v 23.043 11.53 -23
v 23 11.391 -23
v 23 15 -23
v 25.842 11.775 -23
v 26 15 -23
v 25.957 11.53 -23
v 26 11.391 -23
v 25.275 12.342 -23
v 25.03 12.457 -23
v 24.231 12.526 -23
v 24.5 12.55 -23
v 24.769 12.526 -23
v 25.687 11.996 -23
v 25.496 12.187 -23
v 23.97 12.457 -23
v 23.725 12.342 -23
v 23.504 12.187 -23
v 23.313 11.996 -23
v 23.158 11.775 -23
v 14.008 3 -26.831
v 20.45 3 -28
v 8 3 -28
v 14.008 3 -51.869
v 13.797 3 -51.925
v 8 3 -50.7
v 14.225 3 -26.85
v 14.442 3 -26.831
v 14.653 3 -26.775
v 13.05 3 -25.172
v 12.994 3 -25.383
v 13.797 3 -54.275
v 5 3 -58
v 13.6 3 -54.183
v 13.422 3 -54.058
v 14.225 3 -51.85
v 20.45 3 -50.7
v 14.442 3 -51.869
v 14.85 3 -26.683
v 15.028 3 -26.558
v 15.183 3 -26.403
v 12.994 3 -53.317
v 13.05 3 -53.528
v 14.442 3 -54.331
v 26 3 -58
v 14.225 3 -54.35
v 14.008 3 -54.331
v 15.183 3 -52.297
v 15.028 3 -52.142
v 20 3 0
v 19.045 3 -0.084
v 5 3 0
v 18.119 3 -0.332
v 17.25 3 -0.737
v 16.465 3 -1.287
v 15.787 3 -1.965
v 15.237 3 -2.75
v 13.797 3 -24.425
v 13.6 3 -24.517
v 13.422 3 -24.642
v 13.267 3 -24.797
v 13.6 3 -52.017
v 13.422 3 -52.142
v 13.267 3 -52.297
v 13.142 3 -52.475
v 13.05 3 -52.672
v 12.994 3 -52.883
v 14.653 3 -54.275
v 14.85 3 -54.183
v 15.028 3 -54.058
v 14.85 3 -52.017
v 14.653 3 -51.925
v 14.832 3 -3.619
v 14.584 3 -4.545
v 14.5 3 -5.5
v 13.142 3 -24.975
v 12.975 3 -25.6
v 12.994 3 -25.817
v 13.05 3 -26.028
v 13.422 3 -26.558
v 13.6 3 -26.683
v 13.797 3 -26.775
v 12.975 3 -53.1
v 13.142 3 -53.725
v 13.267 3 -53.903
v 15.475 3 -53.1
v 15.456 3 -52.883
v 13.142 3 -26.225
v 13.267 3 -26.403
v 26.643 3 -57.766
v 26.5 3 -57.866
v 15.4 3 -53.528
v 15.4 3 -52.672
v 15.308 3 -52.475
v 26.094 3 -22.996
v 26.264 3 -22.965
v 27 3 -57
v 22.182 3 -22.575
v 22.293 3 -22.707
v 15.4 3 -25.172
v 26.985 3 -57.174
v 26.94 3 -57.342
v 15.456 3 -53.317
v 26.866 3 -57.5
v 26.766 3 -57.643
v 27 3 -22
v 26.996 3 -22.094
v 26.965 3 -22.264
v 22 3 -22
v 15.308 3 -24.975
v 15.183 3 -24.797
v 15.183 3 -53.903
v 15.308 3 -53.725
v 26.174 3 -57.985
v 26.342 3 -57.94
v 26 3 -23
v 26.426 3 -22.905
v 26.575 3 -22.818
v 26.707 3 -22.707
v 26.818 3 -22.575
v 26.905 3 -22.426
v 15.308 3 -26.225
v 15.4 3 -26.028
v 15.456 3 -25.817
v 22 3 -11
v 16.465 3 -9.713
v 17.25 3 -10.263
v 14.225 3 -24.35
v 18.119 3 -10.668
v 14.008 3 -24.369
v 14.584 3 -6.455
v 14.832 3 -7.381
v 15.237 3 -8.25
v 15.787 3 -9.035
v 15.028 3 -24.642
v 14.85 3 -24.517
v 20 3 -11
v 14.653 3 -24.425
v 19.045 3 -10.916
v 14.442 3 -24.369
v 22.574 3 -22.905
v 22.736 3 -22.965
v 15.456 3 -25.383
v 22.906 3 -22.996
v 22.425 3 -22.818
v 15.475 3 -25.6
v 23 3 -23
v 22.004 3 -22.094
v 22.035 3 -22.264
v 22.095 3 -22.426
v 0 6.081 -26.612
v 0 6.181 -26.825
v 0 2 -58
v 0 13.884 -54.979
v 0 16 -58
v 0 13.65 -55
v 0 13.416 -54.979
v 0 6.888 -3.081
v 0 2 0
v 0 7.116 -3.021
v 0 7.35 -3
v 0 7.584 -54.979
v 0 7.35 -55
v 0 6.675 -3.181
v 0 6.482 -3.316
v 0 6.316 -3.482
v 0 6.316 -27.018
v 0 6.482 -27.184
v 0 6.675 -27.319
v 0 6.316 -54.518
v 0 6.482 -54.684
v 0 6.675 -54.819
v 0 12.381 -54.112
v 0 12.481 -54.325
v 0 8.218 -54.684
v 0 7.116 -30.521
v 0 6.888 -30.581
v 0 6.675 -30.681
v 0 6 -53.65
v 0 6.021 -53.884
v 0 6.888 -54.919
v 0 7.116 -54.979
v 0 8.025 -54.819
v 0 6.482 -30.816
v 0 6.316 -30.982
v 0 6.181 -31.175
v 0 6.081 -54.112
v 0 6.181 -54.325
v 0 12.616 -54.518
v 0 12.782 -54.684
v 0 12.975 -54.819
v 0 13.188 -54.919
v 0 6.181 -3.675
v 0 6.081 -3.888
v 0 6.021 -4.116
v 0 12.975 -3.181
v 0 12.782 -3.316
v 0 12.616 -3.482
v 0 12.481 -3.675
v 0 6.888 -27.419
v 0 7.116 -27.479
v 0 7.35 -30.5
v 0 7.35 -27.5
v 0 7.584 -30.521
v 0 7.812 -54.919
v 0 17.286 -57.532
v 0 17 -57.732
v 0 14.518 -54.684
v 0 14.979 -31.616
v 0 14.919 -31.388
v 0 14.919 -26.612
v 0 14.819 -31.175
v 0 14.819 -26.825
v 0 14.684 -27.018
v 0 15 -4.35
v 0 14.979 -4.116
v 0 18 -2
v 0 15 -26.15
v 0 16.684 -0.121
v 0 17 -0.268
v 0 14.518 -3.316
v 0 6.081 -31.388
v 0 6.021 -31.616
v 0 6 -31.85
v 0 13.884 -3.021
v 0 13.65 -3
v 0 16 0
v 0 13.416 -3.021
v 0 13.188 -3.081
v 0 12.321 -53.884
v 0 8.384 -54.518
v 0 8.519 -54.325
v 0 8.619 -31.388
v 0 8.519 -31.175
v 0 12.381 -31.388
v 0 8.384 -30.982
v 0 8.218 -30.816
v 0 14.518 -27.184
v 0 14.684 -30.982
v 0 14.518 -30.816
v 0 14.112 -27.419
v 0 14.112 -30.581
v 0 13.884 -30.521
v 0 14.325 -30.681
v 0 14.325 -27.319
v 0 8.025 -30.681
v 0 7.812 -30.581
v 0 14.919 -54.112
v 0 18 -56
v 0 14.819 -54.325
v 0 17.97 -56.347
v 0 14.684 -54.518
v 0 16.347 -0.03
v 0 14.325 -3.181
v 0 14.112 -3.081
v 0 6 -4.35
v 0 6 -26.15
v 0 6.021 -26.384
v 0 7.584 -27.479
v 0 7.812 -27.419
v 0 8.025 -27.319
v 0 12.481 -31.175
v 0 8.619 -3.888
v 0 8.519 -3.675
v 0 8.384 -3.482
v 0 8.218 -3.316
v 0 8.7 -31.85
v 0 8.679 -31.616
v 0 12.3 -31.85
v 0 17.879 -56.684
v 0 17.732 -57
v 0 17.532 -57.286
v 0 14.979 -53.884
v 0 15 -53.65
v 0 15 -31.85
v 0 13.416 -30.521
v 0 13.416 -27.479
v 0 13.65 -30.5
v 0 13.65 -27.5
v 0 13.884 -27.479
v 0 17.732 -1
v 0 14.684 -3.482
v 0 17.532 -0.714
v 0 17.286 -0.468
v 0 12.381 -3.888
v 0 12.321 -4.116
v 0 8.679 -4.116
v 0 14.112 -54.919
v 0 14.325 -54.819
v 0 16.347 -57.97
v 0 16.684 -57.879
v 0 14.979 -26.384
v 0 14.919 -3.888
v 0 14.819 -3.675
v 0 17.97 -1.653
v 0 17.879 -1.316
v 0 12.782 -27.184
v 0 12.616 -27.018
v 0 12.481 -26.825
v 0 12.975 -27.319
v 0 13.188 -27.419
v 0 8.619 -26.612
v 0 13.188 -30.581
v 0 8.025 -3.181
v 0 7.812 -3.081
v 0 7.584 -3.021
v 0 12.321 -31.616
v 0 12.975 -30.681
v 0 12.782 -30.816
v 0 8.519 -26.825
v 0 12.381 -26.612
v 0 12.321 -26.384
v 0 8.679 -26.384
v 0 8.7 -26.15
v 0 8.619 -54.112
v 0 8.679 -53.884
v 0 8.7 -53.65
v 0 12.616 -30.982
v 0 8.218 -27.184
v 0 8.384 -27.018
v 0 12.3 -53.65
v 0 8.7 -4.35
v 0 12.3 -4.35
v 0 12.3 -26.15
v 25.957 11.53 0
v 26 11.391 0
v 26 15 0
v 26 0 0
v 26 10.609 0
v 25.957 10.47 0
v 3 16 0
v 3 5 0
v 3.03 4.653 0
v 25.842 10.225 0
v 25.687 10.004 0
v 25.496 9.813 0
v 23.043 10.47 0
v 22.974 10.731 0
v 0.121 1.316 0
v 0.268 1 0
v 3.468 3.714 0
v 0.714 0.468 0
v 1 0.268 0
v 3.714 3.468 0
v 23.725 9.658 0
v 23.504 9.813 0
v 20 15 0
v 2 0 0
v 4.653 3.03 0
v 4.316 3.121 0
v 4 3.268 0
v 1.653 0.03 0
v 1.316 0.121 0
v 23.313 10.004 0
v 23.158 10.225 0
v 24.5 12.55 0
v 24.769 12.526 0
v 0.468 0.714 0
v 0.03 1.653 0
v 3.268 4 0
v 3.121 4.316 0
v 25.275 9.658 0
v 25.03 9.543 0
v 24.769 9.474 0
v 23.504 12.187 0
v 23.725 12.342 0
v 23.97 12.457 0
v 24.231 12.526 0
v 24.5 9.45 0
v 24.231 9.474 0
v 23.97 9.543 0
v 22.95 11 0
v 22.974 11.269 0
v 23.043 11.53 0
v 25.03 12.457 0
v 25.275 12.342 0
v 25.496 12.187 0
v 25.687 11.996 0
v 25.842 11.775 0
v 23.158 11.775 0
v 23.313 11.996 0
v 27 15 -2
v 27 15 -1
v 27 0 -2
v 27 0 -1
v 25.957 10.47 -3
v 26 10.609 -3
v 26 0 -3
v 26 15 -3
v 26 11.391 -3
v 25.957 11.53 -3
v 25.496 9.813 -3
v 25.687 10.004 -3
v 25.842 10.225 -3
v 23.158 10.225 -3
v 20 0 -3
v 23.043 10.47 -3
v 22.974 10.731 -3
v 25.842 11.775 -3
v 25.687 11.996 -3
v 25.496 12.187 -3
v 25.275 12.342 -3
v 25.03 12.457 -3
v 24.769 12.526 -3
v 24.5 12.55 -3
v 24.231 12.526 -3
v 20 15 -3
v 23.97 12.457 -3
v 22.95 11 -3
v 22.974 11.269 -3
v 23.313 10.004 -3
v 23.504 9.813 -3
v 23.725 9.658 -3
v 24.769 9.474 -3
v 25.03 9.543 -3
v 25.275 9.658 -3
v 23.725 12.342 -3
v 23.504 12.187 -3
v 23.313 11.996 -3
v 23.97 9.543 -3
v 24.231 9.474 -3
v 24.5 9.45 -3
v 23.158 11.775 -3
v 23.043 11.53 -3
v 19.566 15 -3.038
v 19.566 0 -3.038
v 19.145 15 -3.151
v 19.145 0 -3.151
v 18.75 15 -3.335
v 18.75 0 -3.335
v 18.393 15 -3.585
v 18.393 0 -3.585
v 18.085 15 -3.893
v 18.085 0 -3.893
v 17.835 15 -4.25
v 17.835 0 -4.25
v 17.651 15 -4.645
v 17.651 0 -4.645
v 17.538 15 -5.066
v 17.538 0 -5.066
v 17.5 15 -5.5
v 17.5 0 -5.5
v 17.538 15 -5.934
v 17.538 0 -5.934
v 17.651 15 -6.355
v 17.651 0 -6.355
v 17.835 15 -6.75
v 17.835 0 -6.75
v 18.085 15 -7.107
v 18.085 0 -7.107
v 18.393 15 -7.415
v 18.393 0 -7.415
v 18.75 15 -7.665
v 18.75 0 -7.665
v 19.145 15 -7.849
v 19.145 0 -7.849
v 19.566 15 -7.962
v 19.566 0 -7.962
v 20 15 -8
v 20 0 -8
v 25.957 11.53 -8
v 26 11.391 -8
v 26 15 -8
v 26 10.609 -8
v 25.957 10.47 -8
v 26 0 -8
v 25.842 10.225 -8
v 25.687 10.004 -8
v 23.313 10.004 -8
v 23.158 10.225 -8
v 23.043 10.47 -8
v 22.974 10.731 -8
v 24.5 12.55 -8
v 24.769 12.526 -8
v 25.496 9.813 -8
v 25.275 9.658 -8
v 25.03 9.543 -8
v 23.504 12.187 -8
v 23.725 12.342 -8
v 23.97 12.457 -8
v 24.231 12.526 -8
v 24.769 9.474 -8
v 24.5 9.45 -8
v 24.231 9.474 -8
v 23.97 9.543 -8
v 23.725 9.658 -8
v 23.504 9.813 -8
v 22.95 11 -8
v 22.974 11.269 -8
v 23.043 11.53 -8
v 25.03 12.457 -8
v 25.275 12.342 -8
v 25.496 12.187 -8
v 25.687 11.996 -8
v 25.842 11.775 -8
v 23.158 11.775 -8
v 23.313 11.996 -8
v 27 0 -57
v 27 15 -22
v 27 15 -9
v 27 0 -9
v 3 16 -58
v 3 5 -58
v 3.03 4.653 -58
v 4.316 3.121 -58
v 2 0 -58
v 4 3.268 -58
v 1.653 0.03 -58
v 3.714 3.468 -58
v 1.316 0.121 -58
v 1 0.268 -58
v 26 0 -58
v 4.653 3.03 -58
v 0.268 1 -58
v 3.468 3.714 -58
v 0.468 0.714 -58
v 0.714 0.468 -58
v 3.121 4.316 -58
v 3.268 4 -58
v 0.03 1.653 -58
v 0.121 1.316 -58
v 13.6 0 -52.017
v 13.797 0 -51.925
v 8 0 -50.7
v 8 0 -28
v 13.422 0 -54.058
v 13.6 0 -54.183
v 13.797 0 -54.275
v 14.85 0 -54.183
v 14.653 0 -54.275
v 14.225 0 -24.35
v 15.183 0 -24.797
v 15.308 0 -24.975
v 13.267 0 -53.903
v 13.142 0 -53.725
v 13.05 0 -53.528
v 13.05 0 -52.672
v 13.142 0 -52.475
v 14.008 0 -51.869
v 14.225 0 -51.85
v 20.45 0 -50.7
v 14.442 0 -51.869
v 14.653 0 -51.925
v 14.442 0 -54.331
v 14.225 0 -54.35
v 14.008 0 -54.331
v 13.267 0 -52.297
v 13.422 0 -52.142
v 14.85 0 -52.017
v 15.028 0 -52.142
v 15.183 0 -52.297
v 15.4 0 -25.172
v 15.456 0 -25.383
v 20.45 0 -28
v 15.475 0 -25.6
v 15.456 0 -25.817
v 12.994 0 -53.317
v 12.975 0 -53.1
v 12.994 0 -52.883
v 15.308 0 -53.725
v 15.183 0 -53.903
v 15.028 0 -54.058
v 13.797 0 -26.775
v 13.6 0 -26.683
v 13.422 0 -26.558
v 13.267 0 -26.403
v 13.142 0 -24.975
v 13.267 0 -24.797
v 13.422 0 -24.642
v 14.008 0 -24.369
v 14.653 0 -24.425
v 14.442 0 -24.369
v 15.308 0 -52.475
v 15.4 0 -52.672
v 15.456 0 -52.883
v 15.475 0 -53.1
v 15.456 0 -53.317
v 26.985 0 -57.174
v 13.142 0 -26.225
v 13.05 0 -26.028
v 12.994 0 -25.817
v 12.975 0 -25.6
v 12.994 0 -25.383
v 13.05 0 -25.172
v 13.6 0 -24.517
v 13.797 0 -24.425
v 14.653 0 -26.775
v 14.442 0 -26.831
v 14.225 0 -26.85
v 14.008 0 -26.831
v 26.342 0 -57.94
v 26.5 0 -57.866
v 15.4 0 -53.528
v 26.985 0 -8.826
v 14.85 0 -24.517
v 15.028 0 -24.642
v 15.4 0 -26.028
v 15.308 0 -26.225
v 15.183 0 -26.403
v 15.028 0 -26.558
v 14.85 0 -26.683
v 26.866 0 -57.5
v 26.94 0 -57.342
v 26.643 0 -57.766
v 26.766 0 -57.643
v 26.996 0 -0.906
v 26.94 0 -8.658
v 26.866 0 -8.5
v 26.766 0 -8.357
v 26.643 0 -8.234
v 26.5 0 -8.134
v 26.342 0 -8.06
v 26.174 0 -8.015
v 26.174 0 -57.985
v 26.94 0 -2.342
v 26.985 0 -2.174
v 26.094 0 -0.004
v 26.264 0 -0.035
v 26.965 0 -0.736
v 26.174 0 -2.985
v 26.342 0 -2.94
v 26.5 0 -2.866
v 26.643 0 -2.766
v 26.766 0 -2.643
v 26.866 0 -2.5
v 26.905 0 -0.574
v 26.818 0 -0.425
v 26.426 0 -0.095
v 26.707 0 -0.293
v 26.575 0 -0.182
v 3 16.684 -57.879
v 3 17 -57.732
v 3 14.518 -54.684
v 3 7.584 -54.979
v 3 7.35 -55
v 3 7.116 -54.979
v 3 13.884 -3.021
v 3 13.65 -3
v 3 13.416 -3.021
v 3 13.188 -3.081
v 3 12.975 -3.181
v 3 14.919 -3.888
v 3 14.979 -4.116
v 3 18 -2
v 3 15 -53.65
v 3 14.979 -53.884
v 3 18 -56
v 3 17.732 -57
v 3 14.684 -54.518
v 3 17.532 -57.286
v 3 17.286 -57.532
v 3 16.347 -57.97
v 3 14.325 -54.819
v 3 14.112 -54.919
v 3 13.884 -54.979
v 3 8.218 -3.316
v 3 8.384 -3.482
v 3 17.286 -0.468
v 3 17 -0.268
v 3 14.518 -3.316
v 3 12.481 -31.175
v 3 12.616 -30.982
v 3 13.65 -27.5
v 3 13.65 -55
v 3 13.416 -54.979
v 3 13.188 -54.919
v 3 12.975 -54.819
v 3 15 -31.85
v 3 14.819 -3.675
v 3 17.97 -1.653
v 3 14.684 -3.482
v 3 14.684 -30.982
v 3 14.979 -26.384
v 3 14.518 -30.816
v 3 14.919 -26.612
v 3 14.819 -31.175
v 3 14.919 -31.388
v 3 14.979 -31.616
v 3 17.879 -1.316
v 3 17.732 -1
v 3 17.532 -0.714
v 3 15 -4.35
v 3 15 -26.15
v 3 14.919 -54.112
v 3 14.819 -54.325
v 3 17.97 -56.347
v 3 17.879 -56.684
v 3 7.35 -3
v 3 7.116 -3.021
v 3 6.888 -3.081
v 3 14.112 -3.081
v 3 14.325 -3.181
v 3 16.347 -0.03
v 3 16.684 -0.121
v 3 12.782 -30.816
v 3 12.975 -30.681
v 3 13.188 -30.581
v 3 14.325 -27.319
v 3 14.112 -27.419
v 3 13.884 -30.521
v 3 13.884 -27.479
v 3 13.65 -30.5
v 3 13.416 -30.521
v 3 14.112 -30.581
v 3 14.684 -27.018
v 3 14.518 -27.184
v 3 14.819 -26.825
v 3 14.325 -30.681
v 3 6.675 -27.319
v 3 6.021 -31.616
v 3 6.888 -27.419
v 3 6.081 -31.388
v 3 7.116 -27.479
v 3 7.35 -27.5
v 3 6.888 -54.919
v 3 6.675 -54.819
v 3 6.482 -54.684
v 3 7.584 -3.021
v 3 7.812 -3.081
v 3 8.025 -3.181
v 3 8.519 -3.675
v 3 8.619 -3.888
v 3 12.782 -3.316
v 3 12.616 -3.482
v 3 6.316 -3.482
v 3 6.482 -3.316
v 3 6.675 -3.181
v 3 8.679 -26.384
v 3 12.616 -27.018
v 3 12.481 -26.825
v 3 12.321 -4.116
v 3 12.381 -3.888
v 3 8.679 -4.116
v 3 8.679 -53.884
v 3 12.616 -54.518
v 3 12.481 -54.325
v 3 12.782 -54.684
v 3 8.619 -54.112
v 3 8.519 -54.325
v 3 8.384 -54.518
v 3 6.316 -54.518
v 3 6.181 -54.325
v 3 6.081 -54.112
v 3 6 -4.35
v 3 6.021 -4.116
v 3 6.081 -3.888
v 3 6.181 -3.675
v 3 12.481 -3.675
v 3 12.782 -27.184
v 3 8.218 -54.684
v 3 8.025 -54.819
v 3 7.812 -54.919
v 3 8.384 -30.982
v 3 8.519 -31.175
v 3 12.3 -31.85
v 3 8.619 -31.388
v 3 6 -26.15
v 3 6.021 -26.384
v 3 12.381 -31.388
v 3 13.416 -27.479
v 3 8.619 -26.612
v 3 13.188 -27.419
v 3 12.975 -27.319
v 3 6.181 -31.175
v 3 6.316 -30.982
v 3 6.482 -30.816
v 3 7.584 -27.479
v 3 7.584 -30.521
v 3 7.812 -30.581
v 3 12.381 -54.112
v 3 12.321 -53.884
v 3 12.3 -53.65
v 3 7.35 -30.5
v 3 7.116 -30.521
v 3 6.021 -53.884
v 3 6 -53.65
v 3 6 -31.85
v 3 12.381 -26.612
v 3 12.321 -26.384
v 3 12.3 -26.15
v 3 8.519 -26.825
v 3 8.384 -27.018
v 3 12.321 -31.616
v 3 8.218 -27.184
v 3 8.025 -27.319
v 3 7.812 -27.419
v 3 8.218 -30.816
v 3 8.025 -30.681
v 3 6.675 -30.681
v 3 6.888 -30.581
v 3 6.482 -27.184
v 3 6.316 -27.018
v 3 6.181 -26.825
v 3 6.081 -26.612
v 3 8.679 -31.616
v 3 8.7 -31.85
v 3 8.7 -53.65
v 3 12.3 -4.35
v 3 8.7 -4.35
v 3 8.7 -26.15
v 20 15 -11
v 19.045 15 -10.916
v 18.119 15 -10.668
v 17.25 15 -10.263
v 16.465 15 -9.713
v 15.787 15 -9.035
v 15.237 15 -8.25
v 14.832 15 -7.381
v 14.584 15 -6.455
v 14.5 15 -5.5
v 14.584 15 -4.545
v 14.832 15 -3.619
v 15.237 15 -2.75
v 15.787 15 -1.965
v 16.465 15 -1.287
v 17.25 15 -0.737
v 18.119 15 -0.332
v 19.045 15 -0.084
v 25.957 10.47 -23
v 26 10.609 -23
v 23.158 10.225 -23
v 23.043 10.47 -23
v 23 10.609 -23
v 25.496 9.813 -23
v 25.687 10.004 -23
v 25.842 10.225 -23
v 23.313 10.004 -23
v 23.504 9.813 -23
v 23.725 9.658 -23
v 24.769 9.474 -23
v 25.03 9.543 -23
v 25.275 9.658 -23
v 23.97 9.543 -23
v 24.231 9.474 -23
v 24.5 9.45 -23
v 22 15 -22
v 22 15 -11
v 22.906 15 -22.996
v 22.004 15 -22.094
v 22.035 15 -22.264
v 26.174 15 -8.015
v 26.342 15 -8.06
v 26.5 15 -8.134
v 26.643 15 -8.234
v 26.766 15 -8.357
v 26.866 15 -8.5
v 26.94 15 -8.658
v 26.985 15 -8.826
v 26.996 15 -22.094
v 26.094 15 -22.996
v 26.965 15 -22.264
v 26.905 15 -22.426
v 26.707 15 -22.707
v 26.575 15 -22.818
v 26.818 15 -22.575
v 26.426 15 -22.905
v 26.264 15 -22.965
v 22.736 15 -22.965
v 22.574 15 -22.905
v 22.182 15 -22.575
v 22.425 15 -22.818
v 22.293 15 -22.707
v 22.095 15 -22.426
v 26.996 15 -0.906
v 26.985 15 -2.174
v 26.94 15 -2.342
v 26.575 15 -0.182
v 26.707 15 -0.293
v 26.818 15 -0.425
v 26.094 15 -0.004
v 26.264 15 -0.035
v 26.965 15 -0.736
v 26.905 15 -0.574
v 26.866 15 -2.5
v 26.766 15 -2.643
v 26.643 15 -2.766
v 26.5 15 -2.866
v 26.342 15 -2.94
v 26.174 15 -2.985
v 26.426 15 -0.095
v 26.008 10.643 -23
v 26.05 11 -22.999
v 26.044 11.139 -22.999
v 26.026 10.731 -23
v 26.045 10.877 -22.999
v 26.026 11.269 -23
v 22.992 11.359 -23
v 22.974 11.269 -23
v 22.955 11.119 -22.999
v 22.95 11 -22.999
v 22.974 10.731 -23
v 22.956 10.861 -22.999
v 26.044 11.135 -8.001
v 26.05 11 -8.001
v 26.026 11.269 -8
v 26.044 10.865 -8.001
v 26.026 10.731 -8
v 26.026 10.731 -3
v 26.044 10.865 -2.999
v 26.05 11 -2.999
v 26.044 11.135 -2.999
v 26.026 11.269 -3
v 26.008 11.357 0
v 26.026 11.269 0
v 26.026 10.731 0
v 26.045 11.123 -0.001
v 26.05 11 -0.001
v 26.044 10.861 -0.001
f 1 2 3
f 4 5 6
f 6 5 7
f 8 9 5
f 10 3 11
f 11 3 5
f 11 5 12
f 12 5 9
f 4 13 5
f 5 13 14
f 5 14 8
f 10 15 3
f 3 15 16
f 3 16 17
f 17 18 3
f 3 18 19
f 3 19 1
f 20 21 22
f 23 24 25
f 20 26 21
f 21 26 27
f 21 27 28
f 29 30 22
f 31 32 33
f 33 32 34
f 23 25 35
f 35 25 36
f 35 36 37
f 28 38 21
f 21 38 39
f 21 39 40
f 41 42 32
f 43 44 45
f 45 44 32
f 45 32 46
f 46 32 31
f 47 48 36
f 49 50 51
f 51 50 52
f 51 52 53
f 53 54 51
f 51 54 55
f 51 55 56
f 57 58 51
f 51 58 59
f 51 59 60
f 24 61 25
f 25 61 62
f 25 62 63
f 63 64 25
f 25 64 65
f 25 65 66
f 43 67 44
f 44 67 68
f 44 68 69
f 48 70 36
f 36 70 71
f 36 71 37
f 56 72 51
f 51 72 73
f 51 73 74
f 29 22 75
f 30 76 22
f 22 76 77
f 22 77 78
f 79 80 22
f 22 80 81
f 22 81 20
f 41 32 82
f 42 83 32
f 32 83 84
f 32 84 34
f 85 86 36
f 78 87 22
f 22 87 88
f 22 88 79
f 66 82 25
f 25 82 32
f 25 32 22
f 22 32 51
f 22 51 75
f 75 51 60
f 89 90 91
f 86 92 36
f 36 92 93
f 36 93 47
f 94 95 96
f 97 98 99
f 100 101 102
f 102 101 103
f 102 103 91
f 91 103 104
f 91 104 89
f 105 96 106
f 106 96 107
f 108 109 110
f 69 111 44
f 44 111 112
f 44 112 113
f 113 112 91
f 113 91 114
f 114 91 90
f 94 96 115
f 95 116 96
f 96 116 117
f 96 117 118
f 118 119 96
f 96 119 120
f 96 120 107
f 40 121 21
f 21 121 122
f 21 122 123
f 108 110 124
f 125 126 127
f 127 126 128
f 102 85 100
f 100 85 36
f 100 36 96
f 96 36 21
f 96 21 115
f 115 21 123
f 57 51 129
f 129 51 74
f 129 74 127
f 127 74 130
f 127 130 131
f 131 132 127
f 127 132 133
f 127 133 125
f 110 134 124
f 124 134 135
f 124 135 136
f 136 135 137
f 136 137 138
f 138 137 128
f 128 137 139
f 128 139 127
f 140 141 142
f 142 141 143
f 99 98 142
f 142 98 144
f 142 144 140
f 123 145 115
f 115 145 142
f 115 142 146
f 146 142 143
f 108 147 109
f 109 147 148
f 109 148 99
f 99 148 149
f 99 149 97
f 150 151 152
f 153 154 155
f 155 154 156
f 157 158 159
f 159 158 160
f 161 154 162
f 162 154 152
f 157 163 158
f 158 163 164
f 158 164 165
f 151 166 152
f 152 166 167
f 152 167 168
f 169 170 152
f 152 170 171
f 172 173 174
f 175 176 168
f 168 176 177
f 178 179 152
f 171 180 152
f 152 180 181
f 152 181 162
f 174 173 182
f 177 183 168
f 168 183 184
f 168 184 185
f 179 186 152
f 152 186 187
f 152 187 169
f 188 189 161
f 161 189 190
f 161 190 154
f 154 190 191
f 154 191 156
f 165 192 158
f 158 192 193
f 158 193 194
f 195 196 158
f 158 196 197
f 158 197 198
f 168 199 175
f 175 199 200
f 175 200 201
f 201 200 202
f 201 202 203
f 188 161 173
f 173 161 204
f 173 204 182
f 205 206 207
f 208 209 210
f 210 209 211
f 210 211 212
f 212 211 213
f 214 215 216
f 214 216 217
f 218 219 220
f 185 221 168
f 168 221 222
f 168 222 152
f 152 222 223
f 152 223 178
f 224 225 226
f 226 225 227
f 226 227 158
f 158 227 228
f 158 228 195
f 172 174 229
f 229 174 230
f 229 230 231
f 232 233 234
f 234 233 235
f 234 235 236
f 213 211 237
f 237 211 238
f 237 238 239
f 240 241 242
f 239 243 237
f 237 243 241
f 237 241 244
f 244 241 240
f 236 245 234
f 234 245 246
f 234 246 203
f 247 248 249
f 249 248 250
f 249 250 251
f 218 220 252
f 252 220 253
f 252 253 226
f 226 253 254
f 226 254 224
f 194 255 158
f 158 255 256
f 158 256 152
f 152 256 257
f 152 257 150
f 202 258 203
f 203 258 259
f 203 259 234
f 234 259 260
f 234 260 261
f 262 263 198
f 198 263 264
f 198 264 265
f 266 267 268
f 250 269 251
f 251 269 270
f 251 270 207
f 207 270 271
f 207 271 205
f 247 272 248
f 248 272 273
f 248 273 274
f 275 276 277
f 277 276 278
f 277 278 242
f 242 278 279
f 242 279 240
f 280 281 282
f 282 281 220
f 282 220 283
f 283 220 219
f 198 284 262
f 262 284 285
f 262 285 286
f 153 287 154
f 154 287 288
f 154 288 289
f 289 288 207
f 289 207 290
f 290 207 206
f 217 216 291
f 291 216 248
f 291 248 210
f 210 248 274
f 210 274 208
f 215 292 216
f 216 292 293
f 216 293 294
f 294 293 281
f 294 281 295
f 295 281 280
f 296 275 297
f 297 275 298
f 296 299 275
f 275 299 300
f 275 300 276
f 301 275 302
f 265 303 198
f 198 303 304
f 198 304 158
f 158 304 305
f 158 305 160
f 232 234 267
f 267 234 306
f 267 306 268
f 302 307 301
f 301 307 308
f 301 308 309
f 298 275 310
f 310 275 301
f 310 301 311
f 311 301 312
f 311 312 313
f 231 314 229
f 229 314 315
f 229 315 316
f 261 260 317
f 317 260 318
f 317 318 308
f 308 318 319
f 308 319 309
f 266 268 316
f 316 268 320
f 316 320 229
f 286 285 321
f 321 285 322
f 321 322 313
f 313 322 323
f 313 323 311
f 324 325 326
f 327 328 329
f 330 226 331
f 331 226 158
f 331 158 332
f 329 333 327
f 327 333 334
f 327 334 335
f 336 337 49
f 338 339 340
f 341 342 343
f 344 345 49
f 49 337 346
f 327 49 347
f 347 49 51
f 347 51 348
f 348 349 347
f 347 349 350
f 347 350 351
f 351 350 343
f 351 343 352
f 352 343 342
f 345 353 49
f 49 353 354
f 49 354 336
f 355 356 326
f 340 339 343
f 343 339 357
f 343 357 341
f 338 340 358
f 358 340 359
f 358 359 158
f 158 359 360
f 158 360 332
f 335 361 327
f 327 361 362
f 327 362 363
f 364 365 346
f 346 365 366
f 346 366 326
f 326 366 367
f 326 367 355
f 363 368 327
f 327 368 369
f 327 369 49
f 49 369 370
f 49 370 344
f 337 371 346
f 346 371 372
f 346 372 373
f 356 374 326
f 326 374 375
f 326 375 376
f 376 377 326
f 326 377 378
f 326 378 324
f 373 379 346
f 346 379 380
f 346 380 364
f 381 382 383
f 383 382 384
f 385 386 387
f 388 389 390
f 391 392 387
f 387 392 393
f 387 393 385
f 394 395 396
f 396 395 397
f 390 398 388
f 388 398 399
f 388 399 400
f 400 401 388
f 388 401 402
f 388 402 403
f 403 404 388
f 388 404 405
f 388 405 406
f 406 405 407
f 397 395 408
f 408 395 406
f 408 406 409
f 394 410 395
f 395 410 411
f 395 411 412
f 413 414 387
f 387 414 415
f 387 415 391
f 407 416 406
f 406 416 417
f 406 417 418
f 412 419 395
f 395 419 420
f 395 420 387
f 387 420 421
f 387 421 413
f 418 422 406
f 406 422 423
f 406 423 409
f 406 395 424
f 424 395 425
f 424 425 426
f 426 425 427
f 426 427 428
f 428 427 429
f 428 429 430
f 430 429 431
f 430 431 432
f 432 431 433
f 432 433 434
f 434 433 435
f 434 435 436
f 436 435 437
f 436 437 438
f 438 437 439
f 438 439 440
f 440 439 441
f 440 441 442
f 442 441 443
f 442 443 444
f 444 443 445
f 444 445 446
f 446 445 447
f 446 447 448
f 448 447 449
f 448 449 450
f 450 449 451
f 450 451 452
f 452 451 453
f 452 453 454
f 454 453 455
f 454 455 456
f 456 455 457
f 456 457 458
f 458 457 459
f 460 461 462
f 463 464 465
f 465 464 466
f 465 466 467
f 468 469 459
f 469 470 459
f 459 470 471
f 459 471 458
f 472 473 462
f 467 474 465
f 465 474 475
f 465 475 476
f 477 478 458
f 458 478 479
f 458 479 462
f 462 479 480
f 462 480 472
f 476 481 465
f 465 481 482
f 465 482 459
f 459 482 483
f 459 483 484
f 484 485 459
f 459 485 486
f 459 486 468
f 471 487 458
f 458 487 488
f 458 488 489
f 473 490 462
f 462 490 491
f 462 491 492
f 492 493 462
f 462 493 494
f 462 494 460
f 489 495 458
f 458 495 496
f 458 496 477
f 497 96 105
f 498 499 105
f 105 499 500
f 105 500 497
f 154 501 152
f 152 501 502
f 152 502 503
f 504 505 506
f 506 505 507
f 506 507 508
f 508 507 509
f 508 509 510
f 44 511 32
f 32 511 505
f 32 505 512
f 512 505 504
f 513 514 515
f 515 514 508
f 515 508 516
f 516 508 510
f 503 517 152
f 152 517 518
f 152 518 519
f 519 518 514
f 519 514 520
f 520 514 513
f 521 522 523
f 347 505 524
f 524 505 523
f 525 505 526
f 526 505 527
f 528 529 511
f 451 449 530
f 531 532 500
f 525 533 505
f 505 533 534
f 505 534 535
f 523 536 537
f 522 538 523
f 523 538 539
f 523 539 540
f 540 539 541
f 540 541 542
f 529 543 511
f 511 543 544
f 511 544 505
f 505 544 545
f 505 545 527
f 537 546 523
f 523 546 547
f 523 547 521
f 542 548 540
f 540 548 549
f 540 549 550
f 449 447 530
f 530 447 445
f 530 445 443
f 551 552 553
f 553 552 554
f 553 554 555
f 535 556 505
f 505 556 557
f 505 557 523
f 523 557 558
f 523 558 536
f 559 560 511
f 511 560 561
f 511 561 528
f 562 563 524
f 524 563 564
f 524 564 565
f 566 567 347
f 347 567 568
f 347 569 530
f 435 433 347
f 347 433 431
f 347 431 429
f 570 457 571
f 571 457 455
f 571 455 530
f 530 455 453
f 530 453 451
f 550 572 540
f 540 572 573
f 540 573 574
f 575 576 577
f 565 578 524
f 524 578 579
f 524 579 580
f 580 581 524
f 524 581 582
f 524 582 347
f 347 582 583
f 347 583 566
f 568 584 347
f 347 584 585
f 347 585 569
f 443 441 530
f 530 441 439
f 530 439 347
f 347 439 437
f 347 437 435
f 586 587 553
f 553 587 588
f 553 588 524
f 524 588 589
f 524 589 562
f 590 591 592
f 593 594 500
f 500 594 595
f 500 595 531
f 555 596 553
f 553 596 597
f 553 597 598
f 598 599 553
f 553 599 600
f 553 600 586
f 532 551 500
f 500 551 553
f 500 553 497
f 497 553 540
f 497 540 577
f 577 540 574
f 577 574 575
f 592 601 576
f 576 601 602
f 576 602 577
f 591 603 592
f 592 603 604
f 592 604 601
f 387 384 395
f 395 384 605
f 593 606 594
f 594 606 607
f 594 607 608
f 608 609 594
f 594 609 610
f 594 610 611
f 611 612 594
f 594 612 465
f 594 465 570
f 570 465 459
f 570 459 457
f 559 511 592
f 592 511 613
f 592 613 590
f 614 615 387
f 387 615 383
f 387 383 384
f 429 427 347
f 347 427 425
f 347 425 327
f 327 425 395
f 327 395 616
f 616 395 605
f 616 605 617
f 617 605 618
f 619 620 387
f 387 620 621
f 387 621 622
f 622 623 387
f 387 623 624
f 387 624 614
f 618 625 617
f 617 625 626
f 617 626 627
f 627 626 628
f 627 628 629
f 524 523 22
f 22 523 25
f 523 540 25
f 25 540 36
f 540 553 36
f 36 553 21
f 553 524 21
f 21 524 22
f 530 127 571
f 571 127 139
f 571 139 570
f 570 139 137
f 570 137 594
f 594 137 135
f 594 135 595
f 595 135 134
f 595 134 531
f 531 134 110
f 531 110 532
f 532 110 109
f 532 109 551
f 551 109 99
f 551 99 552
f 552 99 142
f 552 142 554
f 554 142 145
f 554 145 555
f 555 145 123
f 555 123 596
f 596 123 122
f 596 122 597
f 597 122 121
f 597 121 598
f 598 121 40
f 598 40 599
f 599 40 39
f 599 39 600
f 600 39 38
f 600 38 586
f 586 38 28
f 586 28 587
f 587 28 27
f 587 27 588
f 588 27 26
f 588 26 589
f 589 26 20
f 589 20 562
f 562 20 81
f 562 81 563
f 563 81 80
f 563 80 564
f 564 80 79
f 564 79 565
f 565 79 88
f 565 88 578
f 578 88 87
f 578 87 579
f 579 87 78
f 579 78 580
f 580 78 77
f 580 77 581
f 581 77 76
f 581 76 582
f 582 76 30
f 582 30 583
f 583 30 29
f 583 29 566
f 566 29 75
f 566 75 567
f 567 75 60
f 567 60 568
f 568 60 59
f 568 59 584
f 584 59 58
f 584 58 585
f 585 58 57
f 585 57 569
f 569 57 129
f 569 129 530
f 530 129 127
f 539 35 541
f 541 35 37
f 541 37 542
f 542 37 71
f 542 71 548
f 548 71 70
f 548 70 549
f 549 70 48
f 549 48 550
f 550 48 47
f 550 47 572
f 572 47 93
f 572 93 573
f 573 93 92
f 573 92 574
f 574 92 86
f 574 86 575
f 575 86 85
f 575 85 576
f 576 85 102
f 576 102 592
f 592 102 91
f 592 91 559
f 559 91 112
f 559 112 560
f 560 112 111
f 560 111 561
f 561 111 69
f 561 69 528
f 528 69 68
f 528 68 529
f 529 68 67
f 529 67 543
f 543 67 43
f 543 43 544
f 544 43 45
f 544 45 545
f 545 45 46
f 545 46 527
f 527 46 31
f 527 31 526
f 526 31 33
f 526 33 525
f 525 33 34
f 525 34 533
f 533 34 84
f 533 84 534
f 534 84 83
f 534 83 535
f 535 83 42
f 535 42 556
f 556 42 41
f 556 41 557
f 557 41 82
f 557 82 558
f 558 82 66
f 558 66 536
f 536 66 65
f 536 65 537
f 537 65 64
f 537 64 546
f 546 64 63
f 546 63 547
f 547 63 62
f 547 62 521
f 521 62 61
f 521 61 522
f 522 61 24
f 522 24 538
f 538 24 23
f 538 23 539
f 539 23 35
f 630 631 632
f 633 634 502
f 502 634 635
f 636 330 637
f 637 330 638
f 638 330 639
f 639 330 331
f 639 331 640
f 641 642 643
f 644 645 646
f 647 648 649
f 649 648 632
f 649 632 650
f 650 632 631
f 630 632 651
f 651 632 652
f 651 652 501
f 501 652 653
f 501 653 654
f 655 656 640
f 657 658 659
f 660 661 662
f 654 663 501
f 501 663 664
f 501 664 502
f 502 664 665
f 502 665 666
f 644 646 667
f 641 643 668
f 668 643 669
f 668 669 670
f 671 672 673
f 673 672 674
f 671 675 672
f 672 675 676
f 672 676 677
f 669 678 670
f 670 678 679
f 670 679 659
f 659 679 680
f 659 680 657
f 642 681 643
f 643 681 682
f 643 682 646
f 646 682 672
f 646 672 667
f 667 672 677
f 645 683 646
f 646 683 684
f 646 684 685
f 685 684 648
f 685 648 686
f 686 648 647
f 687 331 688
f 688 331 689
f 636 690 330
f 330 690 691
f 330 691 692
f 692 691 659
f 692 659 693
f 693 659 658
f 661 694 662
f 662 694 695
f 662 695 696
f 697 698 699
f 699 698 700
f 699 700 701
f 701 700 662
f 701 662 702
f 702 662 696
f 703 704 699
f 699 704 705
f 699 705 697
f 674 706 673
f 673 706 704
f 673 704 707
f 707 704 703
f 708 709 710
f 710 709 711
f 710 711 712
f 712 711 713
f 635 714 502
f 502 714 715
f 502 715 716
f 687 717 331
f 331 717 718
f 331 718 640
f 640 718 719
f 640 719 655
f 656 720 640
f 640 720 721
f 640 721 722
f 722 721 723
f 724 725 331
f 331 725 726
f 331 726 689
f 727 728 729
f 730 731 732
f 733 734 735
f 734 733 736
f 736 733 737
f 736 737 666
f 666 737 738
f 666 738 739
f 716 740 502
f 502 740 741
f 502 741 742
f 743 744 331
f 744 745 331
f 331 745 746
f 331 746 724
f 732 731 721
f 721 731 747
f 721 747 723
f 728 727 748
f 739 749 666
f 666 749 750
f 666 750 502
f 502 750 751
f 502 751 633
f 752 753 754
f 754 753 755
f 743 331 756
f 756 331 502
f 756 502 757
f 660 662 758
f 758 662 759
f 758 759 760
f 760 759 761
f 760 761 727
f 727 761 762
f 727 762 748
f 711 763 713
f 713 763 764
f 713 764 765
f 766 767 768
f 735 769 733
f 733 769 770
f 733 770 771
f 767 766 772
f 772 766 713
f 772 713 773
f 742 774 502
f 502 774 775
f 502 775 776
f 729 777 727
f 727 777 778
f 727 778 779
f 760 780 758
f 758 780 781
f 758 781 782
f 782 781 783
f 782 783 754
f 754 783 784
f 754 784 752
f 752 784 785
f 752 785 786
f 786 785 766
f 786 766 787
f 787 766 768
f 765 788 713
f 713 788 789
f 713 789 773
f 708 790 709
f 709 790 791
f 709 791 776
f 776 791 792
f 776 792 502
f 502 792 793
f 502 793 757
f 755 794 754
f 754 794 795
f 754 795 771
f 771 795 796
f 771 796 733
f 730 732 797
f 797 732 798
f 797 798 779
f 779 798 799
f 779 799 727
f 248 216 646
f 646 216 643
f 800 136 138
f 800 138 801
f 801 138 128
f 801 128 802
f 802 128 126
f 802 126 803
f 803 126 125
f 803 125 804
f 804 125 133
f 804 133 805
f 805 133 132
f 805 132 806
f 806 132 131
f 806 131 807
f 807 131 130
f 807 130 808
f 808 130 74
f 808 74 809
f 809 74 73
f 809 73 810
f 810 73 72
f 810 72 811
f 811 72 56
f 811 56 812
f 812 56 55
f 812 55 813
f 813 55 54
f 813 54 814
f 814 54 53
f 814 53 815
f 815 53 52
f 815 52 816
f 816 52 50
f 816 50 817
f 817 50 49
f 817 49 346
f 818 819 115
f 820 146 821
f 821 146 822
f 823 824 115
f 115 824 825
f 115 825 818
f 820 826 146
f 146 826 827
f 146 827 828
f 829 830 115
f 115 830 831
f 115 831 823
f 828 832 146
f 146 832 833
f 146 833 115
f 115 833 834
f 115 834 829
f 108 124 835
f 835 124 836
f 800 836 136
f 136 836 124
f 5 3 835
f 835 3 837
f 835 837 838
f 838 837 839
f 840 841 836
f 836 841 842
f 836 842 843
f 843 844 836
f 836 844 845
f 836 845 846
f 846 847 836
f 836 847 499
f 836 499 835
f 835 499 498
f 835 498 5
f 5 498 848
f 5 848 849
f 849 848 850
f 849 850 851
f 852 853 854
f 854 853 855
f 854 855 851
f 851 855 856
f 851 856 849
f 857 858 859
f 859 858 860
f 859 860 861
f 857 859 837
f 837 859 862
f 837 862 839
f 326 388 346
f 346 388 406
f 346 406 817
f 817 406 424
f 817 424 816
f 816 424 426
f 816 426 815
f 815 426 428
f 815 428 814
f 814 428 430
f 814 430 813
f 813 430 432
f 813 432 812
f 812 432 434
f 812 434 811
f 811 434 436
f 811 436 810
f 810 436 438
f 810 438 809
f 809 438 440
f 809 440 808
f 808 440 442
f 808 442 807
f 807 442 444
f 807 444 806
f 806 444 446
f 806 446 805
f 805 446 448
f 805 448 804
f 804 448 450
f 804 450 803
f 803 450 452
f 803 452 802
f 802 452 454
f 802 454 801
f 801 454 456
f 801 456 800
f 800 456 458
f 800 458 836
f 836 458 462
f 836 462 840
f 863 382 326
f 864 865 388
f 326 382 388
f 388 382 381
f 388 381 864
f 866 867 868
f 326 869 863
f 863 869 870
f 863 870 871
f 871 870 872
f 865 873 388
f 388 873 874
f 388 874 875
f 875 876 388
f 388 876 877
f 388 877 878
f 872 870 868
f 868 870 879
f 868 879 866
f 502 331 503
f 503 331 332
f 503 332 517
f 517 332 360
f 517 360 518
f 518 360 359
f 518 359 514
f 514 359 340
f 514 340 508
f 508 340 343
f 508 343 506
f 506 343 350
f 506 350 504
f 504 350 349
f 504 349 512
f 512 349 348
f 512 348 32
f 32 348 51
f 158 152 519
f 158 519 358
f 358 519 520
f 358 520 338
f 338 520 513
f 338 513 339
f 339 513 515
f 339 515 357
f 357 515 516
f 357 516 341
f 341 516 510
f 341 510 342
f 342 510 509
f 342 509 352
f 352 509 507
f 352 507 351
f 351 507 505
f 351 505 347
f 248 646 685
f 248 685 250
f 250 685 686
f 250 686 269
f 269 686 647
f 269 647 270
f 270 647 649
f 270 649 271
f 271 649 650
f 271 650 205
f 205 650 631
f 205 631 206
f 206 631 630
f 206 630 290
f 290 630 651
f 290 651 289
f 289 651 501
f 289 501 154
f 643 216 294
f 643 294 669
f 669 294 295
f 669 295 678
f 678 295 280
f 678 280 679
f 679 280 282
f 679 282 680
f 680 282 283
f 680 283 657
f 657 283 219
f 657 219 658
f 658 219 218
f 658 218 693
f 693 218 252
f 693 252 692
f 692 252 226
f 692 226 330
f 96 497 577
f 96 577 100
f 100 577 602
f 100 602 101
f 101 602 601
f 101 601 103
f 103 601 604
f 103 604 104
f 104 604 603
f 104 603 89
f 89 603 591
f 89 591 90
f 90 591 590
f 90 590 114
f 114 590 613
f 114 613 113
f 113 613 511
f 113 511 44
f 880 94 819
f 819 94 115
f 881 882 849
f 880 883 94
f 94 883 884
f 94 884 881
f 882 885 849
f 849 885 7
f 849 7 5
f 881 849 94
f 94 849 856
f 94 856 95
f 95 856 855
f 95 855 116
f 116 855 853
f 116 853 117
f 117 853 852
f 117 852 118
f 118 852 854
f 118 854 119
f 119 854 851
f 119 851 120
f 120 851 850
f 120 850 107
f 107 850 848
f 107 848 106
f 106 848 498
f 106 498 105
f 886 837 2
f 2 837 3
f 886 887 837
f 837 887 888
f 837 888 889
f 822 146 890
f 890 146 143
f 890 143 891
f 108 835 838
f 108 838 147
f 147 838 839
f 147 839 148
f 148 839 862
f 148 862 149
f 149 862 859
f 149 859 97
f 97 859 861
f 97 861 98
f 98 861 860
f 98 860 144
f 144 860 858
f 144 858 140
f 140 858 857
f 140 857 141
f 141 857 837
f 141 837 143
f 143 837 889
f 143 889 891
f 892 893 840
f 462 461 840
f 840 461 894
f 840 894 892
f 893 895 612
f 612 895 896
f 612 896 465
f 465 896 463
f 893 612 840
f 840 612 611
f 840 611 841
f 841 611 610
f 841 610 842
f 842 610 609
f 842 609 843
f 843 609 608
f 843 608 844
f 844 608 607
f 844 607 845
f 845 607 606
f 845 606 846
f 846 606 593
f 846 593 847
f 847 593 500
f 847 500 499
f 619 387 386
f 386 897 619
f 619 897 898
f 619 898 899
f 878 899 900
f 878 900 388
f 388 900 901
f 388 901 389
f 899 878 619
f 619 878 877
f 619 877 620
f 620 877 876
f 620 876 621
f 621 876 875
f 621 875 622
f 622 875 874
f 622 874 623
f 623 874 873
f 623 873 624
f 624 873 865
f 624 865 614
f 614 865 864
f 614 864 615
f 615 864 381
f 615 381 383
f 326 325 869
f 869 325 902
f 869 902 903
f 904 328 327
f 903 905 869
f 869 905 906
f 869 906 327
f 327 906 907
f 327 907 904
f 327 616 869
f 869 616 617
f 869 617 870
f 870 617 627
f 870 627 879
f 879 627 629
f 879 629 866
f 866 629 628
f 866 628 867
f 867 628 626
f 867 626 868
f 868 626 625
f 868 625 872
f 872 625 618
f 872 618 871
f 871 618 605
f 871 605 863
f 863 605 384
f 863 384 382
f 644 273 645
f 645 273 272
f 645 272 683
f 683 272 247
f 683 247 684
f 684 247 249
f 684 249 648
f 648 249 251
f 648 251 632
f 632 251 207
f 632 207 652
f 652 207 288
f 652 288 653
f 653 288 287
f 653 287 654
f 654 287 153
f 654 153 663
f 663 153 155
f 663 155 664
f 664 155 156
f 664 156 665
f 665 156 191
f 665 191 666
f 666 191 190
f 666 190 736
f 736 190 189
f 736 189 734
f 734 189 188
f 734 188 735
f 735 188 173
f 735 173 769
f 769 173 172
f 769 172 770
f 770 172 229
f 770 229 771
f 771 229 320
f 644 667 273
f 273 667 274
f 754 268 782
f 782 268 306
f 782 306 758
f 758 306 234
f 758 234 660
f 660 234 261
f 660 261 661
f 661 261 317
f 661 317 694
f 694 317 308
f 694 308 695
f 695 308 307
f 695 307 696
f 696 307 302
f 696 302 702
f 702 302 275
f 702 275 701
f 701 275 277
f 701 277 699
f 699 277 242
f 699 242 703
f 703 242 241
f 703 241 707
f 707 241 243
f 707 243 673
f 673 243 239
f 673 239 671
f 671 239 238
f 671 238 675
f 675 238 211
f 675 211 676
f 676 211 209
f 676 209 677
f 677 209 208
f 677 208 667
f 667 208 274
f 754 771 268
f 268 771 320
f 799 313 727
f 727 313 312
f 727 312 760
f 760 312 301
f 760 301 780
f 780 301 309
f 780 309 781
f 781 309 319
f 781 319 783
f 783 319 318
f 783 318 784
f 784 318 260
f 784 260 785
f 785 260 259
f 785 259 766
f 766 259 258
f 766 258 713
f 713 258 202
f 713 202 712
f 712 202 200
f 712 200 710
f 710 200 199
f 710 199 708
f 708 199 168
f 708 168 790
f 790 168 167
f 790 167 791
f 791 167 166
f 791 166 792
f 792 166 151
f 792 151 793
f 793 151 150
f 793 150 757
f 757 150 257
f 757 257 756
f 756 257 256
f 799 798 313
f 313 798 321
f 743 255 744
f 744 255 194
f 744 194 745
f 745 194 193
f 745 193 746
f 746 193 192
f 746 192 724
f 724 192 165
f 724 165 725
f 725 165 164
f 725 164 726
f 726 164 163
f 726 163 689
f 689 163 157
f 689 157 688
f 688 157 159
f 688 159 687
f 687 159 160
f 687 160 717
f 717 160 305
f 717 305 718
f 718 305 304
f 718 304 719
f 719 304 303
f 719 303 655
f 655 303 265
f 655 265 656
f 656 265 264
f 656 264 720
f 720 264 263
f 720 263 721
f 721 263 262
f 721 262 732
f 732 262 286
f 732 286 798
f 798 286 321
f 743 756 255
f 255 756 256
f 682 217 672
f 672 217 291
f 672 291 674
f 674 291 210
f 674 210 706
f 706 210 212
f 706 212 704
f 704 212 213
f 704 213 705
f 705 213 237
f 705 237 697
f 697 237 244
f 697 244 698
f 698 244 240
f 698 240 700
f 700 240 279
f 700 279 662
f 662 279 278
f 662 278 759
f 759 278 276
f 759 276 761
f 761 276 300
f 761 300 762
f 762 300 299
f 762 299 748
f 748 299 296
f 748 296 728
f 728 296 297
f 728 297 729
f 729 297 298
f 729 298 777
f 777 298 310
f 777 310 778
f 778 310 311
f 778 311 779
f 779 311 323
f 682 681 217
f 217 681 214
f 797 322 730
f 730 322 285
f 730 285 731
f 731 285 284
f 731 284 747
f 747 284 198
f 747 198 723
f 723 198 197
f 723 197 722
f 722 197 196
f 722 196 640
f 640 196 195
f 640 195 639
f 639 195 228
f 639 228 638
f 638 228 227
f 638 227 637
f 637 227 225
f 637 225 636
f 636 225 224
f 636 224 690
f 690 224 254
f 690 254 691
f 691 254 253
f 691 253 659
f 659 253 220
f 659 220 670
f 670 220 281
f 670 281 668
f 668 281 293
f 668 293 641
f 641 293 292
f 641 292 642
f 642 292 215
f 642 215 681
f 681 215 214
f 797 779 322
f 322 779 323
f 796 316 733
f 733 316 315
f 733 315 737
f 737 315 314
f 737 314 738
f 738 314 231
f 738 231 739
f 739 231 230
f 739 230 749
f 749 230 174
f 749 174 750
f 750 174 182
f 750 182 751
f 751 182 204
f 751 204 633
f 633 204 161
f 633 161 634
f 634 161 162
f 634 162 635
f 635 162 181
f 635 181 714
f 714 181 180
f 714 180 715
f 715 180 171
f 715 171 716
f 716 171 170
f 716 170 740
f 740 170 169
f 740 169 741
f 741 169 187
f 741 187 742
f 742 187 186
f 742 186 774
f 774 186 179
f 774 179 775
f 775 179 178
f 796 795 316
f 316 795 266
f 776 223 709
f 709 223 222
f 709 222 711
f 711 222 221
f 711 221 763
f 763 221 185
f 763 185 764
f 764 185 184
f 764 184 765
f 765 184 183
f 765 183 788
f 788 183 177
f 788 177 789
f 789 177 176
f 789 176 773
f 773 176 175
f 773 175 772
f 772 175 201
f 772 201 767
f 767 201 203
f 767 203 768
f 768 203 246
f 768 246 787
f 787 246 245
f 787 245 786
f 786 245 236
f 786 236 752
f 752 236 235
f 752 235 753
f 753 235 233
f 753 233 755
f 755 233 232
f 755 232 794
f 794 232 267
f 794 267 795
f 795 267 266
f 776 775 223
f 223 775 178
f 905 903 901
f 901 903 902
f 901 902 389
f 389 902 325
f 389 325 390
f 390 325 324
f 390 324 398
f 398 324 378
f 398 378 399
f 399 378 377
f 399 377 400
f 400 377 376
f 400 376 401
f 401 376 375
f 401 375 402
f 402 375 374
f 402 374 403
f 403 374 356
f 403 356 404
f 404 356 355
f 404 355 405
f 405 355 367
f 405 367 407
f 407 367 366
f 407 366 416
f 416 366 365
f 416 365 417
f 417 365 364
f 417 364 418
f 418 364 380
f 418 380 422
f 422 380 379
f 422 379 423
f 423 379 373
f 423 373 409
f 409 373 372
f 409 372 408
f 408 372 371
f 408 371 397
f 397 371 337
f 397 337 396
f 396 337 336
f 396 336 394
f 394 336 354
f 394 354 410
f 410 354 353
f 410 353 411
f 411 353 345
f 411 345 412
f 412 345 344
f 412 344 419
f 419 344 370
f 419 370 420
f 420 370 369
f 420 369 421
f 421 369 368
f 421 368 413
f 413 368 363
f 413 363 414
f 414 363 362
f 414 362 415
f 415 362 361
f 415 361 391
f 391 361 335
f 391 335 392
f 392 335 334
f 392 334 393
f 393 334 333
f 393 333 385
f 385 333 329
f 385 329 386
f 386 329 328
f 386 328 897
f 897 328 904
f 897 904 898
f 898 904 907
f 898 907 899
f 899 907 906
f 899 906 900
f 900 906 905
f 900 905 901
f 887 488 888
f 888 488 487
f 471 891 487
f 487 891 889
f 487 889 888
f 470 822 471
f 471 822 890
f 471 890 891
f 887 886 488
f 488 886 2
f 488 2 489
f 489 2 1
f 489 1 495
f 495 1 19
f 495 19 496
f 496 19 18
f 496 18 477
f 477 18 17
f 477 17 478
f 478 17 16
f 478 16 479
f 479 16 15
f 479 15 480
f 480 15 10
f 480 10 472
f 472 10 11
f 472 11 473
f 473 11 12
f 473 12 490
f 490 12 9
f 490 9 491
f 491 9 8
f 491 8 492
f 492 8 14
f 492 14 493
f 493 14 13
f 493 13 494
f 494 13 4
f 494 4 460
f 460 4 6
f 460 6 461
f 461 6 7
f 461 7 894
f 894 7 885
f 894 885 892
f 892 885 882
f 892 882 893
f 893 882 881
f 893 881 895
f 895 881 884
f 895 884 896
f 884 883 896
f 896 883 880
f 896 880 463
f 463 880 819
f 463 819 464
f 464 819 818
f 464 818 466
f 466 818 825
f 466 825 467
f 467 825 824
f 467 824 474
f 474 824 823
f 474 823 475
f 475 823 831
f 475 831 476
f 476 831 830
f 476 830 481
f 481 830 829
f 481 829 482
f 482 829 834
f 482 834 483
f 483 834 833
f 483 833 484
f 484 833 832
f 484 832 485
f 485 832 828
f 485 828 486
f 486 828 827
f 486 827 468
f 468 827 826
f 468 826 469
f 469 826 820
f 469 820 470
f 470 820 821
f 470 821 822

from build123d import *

# Parameters (mm, degrees)
BOSS_EXTRUDE1_DEPTH = 3
SKETCH2_R           = 1.25
SKETCH2_W           = 12.45
SKETCH2_H           = 22.7
CUT_EXTRUDE1_DEPTH  = 3
SKETCH3_W           = 3
SKETCH3_H           = 58
BOSS_EXTRUDE2_DEPTH = 15
BOSS_EXTRUDE3_DEPTH = 12
FILLET1_R           = 2
FILLET2_R           = 2
FILLET3_R           = 1
CUT_EXTRUDE2_DEPTH  = 3
SKETCH7_R           = 1.55
CUT_EXTRUDE3_DEPTH  = 48.728398255


with BuildPart() as part:
    # Sketch1 → Boss-Extrude1 (new body)
    with BuildSketch(Plane(origin=(0, 0, 0), x_dir=(1, 0, 0), z_dir=(0, 1, 0))):
        with BuildLine():
            Line((27, 8), (20, 8))
            ThreePointArc((20, 8), (17.5, 5.5), (20, 3))
            Line((20, 3), (27, 3))
            Line((27, 3), (27, 0))
            Line((27, 0), (0, 0))
            Line((0, 0), (0, 58))
            Line((0, 58), (27, 58))
            Line((27, 58), (27, 8))
        make_face()
    extrude(amount=BOSS_EXTRUDE1_DEPTH)

    # Sketch2 → Cut-Extrude1 (cut)
    with BuildSketch(Plane(origin=(0, 3, 0), x_dir=(1, 0, 0), z_dir=(0, 1, 0))):
        with Locations(Location((14.225, 53.1, 0), (0, 0, 270))):
            Circle(SKETCH2_R)
        with Locations(Location((14.225, 25.6, 0), (0, 0, 270))):
            Circle(SKETCH2_R)
        with Locations((14.225, 39.35)):
            Rectangle(SKETCH2_W, SKETCH2_H)
    extrude(amount=-CUT_EXTRUDE1_DEPTH, mode=Mode.SUBTRACT)

    # Sketch3 → Boss-Extrude2 (add)
    with BuildSketch(Plane(origin=(0, 3, 0), x_dir=(1, 0, 0), z_dir=(0, 1, 0))):
        with Locations((1.5, 29)):
            Rectangle(SKETCH3_W, SKETCH3_H)
    extrude(amount=BOSS_EXTRUDE2_DEPTH)

    # Sketch4 → Boss-Extrude3 (add)
    with BuildSketch(Plane(origin=(0, 3, 0), x_dir=(1, 0, 0), z_dir=(0, 1, 0))):
        with BuildLine():
            Line((20, 11), (22, 11))
            Line((22, 11), (22, 23))
            Line((22, 23), (27, 23))
            Line((27, 23), (27, 11))
            Line((27, 11), (27, 8))
            Line((27, 8), (20, 8))
            ThreePointArc((20, 8), (17.5, 5.5), (20, 3))
            Line((20, 3), (27, 3))
            Line((27, 3), (27, 0))
            Line((27, 0), (20, 0))
            ThreePointArc((20, 0), (14.5, 5.5), (20, 11))
        make_face()
    extrude(amount=BOSS_EXTRUDE3_DEPTH)

    # Fillet1
    fillet1_edges = [part.edges().sort_by_distance(p)[0] for p in [
        (0, 0, -29),
        (3, 3, -29),
    ]]
    fillet(fillet1_edges, radius=FILLET1_R)

    # Fillet2
    fillet2_edges = [part.edges().sort_by_distance(p)[0] for p in [
        (1.5, 18, 0),
        (1.5, 18, -58),
    ]]
    fillet(fillet2_edges, radius=FILLET2_R)

    # Fillet3
    fillet3_edges = [part.edges().sort_by_distance(p)[0] for p in [
        (27, 1.5, -58),
        (27, 7.5, -8),
        (27, 7.5, -3),
        (27, 7.5, 0),
        (27, 9, -23),
        (22, 9, -23),
    ]]
    fillet(fillet3_edges, radius=FILLET3_R)

    # Sketch5 → Cut-Extrude2 (cut)
    with BuildSketch(Plane.ZY):
        with BuildLine():
            Line((-53.65, 15), (-31.85, 15))
            ThreePointArc((-31.85, 15), (-30.5, 13.65), (-31.85, 12.3))
            Line((-31.85, 12.3), (-53.65, 12.3))
            ThreePointArc((-53.65, 12.3), (-55, 13.65), (-53.65, 15))
        make_face()
        with BuildLine():
            Line((-53.65, 8.7), (-31.85, 8.7))
            ThreePointArc((-31.85, 8.7), (-30.5, 7.35), (-31.85, 6))
            Line((-31.85, 6), (-53.65, 6))
            ThreePointArc((-53.65, 6), (-55, 7.35), (-53.65, 8.7))
        make_face()
        with BuildLine():
            Line((-26.15, 15), (-4.35, 15))
            ThreePointArc((-4.35, 15), (-3, 13.65), (-4.35, 12.3))
            Line((-4.35, 12.3), (-26.15, 12.3))
            ThreePointArc((-26.15, 12.3), (-27.5, 13.65), (-26.15, 15))
        make_face()
        with BuildLine():
            Line((-26.15, 8.7), (-4.35, 8.7))
            ThreePointArc((-4.35, 8.7), (-3, 7.35), (-4.35, 6))
            Line((-4.35, 6), (-26.15, 6))
            ThreePointArc((-26.15, 6), (-27.5, 7.35), (-26.15, 8.7))
        make_face()
    extrude(amount=-CUT_EXTRUDE2_DEPTH, mode=Mode.SUBTRACT)

    # Sketch7 → Cut-Extrude3 (cut, through all)
    with BuildSketch(Plane(origin=(0, 0, -23), x_dir=(-1, 0, 0), z_dir=(0, 0, -1))):
        with Locations(Location((-24.5, 11, 0), (0, 0, 165.407449398))):
            Circle(SKETCH7_R)
    extrude(amount=-CUT_EXTRUDE3_DEPTH, mode=Mode.SUBTRACT)


solid = part.part
